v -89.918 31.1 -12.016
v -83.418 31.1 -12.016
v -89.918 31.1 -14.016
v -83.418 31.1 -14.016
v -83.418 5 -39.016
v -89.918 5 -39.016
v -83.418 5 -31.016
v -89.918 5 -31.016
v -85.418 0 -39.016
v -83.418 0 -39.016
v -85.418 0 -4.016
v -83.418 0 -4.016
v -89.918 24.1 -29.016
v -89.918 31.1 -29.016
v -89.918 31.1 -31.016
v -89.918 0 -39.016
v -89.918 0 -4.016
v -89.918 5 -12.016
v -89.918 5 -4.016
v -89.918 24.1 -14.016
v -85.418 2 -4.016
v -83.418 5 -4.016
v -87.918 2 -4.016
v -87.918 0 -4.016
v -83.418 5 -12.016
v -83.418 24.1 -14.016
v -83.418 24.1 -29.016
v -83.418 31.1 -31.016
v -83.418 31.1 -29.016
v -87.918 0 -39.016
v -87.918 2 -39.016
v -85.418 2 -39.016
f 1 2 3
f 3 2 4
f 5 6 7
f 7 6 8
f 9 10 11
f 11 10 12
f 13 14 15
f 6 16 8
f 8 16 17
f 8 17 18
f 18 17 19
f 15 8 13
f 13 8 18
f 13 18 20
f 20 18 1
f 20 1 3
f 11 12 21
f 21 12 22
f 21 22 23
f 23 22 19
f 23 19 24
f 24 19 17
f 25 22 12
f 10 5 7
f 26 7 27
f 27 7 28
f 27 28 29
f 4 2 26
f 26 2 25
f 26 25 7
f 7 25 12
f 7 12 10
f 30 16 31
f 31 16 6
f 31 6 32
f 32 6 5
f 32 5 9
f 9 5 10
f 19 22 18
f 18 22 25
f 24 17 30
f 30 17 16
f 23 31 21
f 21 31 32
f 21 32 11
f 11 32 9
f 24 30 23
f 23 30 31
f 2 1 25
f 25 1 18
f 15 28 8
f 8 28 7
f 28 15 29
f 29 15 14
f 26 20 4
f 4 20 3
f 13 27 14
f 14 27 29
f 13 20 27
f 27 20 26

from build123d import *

# Parameters (mm, degrees)
SKETCH_2_W          = 6.5
SKETCH_2_H          = 35
EXTRUDE_1_DEPTH     = 5
SKETCH_3_W          = 2.5
SKETCH_3_H          = 2
CUT_EXTRUDE_1_DEPTH = 180
SKETCH_4_W          = 6.5
SKETCH_4_H          = 19
EXTRUDE_2_DEPTH     = 26.1
SKETCH_5_W          = 6.5
SKETCH_5_H          = 15
CUT_EXTRUDE_2_DEPTH = 7


with BuildPart() as part:
    # Эскиз2 → Бобышка-Вытянуть1 (new body)
    with BuildSketch(Plane(origin=(0, 0, 0), x_dir=(1, 0, 0), z_dir=(0, 1, 0))):
        with Locations((-86.667897916, 21.515984643)):
            Rectangle(SKETCH_2_W, SKETCH_2_H)
    extrude(amount=EXTRUDE_1_DEPTH)

    # Эскиз3 → Вырез-Вытянуть1 (cut)
    with BuildSketch(Plane.XY.offset(-4.015984643)):
        with Locations((-86.667897916, 1)):
            Rectangle(SKETCH_3_W, SKETCH_3_H)
    extrude(amount=-CUT_EXTRUDE_1_DEPTH, mode=Mode.SUBTRACT)

    # Эскиз4 → Бобышка-Вытянуть2 (add)
    with BuildSketch(Plane(origin=(0, 5, 0), x_dir=(1, 0, 0), z_dir=(0, 1, 0))):
        with Locations((-86.667897916, 21.515984643)):
            Rectangle(SKETCH_4_W, SKETCH_4_H)
    extrude(amount=EXTRUDE_2_DEPTH)

    # Эскиз5 → Вырез-Вытянуть2 (cut)
    with BuildSketch(Plane(origin=(0, 31.1, 0), x_dir=(1, 0, 0), z_dir=(0, 1, 0))):
        with Locations((-86.667897916, 21.515984643)):
            Rectangle(SKETCH_5_W, SKETCH_5_H)
    extrude(amount=-CUT_EXTRUDE_2_DEPTH, mode=Mode.SUBTRACT)


solid = part.part
